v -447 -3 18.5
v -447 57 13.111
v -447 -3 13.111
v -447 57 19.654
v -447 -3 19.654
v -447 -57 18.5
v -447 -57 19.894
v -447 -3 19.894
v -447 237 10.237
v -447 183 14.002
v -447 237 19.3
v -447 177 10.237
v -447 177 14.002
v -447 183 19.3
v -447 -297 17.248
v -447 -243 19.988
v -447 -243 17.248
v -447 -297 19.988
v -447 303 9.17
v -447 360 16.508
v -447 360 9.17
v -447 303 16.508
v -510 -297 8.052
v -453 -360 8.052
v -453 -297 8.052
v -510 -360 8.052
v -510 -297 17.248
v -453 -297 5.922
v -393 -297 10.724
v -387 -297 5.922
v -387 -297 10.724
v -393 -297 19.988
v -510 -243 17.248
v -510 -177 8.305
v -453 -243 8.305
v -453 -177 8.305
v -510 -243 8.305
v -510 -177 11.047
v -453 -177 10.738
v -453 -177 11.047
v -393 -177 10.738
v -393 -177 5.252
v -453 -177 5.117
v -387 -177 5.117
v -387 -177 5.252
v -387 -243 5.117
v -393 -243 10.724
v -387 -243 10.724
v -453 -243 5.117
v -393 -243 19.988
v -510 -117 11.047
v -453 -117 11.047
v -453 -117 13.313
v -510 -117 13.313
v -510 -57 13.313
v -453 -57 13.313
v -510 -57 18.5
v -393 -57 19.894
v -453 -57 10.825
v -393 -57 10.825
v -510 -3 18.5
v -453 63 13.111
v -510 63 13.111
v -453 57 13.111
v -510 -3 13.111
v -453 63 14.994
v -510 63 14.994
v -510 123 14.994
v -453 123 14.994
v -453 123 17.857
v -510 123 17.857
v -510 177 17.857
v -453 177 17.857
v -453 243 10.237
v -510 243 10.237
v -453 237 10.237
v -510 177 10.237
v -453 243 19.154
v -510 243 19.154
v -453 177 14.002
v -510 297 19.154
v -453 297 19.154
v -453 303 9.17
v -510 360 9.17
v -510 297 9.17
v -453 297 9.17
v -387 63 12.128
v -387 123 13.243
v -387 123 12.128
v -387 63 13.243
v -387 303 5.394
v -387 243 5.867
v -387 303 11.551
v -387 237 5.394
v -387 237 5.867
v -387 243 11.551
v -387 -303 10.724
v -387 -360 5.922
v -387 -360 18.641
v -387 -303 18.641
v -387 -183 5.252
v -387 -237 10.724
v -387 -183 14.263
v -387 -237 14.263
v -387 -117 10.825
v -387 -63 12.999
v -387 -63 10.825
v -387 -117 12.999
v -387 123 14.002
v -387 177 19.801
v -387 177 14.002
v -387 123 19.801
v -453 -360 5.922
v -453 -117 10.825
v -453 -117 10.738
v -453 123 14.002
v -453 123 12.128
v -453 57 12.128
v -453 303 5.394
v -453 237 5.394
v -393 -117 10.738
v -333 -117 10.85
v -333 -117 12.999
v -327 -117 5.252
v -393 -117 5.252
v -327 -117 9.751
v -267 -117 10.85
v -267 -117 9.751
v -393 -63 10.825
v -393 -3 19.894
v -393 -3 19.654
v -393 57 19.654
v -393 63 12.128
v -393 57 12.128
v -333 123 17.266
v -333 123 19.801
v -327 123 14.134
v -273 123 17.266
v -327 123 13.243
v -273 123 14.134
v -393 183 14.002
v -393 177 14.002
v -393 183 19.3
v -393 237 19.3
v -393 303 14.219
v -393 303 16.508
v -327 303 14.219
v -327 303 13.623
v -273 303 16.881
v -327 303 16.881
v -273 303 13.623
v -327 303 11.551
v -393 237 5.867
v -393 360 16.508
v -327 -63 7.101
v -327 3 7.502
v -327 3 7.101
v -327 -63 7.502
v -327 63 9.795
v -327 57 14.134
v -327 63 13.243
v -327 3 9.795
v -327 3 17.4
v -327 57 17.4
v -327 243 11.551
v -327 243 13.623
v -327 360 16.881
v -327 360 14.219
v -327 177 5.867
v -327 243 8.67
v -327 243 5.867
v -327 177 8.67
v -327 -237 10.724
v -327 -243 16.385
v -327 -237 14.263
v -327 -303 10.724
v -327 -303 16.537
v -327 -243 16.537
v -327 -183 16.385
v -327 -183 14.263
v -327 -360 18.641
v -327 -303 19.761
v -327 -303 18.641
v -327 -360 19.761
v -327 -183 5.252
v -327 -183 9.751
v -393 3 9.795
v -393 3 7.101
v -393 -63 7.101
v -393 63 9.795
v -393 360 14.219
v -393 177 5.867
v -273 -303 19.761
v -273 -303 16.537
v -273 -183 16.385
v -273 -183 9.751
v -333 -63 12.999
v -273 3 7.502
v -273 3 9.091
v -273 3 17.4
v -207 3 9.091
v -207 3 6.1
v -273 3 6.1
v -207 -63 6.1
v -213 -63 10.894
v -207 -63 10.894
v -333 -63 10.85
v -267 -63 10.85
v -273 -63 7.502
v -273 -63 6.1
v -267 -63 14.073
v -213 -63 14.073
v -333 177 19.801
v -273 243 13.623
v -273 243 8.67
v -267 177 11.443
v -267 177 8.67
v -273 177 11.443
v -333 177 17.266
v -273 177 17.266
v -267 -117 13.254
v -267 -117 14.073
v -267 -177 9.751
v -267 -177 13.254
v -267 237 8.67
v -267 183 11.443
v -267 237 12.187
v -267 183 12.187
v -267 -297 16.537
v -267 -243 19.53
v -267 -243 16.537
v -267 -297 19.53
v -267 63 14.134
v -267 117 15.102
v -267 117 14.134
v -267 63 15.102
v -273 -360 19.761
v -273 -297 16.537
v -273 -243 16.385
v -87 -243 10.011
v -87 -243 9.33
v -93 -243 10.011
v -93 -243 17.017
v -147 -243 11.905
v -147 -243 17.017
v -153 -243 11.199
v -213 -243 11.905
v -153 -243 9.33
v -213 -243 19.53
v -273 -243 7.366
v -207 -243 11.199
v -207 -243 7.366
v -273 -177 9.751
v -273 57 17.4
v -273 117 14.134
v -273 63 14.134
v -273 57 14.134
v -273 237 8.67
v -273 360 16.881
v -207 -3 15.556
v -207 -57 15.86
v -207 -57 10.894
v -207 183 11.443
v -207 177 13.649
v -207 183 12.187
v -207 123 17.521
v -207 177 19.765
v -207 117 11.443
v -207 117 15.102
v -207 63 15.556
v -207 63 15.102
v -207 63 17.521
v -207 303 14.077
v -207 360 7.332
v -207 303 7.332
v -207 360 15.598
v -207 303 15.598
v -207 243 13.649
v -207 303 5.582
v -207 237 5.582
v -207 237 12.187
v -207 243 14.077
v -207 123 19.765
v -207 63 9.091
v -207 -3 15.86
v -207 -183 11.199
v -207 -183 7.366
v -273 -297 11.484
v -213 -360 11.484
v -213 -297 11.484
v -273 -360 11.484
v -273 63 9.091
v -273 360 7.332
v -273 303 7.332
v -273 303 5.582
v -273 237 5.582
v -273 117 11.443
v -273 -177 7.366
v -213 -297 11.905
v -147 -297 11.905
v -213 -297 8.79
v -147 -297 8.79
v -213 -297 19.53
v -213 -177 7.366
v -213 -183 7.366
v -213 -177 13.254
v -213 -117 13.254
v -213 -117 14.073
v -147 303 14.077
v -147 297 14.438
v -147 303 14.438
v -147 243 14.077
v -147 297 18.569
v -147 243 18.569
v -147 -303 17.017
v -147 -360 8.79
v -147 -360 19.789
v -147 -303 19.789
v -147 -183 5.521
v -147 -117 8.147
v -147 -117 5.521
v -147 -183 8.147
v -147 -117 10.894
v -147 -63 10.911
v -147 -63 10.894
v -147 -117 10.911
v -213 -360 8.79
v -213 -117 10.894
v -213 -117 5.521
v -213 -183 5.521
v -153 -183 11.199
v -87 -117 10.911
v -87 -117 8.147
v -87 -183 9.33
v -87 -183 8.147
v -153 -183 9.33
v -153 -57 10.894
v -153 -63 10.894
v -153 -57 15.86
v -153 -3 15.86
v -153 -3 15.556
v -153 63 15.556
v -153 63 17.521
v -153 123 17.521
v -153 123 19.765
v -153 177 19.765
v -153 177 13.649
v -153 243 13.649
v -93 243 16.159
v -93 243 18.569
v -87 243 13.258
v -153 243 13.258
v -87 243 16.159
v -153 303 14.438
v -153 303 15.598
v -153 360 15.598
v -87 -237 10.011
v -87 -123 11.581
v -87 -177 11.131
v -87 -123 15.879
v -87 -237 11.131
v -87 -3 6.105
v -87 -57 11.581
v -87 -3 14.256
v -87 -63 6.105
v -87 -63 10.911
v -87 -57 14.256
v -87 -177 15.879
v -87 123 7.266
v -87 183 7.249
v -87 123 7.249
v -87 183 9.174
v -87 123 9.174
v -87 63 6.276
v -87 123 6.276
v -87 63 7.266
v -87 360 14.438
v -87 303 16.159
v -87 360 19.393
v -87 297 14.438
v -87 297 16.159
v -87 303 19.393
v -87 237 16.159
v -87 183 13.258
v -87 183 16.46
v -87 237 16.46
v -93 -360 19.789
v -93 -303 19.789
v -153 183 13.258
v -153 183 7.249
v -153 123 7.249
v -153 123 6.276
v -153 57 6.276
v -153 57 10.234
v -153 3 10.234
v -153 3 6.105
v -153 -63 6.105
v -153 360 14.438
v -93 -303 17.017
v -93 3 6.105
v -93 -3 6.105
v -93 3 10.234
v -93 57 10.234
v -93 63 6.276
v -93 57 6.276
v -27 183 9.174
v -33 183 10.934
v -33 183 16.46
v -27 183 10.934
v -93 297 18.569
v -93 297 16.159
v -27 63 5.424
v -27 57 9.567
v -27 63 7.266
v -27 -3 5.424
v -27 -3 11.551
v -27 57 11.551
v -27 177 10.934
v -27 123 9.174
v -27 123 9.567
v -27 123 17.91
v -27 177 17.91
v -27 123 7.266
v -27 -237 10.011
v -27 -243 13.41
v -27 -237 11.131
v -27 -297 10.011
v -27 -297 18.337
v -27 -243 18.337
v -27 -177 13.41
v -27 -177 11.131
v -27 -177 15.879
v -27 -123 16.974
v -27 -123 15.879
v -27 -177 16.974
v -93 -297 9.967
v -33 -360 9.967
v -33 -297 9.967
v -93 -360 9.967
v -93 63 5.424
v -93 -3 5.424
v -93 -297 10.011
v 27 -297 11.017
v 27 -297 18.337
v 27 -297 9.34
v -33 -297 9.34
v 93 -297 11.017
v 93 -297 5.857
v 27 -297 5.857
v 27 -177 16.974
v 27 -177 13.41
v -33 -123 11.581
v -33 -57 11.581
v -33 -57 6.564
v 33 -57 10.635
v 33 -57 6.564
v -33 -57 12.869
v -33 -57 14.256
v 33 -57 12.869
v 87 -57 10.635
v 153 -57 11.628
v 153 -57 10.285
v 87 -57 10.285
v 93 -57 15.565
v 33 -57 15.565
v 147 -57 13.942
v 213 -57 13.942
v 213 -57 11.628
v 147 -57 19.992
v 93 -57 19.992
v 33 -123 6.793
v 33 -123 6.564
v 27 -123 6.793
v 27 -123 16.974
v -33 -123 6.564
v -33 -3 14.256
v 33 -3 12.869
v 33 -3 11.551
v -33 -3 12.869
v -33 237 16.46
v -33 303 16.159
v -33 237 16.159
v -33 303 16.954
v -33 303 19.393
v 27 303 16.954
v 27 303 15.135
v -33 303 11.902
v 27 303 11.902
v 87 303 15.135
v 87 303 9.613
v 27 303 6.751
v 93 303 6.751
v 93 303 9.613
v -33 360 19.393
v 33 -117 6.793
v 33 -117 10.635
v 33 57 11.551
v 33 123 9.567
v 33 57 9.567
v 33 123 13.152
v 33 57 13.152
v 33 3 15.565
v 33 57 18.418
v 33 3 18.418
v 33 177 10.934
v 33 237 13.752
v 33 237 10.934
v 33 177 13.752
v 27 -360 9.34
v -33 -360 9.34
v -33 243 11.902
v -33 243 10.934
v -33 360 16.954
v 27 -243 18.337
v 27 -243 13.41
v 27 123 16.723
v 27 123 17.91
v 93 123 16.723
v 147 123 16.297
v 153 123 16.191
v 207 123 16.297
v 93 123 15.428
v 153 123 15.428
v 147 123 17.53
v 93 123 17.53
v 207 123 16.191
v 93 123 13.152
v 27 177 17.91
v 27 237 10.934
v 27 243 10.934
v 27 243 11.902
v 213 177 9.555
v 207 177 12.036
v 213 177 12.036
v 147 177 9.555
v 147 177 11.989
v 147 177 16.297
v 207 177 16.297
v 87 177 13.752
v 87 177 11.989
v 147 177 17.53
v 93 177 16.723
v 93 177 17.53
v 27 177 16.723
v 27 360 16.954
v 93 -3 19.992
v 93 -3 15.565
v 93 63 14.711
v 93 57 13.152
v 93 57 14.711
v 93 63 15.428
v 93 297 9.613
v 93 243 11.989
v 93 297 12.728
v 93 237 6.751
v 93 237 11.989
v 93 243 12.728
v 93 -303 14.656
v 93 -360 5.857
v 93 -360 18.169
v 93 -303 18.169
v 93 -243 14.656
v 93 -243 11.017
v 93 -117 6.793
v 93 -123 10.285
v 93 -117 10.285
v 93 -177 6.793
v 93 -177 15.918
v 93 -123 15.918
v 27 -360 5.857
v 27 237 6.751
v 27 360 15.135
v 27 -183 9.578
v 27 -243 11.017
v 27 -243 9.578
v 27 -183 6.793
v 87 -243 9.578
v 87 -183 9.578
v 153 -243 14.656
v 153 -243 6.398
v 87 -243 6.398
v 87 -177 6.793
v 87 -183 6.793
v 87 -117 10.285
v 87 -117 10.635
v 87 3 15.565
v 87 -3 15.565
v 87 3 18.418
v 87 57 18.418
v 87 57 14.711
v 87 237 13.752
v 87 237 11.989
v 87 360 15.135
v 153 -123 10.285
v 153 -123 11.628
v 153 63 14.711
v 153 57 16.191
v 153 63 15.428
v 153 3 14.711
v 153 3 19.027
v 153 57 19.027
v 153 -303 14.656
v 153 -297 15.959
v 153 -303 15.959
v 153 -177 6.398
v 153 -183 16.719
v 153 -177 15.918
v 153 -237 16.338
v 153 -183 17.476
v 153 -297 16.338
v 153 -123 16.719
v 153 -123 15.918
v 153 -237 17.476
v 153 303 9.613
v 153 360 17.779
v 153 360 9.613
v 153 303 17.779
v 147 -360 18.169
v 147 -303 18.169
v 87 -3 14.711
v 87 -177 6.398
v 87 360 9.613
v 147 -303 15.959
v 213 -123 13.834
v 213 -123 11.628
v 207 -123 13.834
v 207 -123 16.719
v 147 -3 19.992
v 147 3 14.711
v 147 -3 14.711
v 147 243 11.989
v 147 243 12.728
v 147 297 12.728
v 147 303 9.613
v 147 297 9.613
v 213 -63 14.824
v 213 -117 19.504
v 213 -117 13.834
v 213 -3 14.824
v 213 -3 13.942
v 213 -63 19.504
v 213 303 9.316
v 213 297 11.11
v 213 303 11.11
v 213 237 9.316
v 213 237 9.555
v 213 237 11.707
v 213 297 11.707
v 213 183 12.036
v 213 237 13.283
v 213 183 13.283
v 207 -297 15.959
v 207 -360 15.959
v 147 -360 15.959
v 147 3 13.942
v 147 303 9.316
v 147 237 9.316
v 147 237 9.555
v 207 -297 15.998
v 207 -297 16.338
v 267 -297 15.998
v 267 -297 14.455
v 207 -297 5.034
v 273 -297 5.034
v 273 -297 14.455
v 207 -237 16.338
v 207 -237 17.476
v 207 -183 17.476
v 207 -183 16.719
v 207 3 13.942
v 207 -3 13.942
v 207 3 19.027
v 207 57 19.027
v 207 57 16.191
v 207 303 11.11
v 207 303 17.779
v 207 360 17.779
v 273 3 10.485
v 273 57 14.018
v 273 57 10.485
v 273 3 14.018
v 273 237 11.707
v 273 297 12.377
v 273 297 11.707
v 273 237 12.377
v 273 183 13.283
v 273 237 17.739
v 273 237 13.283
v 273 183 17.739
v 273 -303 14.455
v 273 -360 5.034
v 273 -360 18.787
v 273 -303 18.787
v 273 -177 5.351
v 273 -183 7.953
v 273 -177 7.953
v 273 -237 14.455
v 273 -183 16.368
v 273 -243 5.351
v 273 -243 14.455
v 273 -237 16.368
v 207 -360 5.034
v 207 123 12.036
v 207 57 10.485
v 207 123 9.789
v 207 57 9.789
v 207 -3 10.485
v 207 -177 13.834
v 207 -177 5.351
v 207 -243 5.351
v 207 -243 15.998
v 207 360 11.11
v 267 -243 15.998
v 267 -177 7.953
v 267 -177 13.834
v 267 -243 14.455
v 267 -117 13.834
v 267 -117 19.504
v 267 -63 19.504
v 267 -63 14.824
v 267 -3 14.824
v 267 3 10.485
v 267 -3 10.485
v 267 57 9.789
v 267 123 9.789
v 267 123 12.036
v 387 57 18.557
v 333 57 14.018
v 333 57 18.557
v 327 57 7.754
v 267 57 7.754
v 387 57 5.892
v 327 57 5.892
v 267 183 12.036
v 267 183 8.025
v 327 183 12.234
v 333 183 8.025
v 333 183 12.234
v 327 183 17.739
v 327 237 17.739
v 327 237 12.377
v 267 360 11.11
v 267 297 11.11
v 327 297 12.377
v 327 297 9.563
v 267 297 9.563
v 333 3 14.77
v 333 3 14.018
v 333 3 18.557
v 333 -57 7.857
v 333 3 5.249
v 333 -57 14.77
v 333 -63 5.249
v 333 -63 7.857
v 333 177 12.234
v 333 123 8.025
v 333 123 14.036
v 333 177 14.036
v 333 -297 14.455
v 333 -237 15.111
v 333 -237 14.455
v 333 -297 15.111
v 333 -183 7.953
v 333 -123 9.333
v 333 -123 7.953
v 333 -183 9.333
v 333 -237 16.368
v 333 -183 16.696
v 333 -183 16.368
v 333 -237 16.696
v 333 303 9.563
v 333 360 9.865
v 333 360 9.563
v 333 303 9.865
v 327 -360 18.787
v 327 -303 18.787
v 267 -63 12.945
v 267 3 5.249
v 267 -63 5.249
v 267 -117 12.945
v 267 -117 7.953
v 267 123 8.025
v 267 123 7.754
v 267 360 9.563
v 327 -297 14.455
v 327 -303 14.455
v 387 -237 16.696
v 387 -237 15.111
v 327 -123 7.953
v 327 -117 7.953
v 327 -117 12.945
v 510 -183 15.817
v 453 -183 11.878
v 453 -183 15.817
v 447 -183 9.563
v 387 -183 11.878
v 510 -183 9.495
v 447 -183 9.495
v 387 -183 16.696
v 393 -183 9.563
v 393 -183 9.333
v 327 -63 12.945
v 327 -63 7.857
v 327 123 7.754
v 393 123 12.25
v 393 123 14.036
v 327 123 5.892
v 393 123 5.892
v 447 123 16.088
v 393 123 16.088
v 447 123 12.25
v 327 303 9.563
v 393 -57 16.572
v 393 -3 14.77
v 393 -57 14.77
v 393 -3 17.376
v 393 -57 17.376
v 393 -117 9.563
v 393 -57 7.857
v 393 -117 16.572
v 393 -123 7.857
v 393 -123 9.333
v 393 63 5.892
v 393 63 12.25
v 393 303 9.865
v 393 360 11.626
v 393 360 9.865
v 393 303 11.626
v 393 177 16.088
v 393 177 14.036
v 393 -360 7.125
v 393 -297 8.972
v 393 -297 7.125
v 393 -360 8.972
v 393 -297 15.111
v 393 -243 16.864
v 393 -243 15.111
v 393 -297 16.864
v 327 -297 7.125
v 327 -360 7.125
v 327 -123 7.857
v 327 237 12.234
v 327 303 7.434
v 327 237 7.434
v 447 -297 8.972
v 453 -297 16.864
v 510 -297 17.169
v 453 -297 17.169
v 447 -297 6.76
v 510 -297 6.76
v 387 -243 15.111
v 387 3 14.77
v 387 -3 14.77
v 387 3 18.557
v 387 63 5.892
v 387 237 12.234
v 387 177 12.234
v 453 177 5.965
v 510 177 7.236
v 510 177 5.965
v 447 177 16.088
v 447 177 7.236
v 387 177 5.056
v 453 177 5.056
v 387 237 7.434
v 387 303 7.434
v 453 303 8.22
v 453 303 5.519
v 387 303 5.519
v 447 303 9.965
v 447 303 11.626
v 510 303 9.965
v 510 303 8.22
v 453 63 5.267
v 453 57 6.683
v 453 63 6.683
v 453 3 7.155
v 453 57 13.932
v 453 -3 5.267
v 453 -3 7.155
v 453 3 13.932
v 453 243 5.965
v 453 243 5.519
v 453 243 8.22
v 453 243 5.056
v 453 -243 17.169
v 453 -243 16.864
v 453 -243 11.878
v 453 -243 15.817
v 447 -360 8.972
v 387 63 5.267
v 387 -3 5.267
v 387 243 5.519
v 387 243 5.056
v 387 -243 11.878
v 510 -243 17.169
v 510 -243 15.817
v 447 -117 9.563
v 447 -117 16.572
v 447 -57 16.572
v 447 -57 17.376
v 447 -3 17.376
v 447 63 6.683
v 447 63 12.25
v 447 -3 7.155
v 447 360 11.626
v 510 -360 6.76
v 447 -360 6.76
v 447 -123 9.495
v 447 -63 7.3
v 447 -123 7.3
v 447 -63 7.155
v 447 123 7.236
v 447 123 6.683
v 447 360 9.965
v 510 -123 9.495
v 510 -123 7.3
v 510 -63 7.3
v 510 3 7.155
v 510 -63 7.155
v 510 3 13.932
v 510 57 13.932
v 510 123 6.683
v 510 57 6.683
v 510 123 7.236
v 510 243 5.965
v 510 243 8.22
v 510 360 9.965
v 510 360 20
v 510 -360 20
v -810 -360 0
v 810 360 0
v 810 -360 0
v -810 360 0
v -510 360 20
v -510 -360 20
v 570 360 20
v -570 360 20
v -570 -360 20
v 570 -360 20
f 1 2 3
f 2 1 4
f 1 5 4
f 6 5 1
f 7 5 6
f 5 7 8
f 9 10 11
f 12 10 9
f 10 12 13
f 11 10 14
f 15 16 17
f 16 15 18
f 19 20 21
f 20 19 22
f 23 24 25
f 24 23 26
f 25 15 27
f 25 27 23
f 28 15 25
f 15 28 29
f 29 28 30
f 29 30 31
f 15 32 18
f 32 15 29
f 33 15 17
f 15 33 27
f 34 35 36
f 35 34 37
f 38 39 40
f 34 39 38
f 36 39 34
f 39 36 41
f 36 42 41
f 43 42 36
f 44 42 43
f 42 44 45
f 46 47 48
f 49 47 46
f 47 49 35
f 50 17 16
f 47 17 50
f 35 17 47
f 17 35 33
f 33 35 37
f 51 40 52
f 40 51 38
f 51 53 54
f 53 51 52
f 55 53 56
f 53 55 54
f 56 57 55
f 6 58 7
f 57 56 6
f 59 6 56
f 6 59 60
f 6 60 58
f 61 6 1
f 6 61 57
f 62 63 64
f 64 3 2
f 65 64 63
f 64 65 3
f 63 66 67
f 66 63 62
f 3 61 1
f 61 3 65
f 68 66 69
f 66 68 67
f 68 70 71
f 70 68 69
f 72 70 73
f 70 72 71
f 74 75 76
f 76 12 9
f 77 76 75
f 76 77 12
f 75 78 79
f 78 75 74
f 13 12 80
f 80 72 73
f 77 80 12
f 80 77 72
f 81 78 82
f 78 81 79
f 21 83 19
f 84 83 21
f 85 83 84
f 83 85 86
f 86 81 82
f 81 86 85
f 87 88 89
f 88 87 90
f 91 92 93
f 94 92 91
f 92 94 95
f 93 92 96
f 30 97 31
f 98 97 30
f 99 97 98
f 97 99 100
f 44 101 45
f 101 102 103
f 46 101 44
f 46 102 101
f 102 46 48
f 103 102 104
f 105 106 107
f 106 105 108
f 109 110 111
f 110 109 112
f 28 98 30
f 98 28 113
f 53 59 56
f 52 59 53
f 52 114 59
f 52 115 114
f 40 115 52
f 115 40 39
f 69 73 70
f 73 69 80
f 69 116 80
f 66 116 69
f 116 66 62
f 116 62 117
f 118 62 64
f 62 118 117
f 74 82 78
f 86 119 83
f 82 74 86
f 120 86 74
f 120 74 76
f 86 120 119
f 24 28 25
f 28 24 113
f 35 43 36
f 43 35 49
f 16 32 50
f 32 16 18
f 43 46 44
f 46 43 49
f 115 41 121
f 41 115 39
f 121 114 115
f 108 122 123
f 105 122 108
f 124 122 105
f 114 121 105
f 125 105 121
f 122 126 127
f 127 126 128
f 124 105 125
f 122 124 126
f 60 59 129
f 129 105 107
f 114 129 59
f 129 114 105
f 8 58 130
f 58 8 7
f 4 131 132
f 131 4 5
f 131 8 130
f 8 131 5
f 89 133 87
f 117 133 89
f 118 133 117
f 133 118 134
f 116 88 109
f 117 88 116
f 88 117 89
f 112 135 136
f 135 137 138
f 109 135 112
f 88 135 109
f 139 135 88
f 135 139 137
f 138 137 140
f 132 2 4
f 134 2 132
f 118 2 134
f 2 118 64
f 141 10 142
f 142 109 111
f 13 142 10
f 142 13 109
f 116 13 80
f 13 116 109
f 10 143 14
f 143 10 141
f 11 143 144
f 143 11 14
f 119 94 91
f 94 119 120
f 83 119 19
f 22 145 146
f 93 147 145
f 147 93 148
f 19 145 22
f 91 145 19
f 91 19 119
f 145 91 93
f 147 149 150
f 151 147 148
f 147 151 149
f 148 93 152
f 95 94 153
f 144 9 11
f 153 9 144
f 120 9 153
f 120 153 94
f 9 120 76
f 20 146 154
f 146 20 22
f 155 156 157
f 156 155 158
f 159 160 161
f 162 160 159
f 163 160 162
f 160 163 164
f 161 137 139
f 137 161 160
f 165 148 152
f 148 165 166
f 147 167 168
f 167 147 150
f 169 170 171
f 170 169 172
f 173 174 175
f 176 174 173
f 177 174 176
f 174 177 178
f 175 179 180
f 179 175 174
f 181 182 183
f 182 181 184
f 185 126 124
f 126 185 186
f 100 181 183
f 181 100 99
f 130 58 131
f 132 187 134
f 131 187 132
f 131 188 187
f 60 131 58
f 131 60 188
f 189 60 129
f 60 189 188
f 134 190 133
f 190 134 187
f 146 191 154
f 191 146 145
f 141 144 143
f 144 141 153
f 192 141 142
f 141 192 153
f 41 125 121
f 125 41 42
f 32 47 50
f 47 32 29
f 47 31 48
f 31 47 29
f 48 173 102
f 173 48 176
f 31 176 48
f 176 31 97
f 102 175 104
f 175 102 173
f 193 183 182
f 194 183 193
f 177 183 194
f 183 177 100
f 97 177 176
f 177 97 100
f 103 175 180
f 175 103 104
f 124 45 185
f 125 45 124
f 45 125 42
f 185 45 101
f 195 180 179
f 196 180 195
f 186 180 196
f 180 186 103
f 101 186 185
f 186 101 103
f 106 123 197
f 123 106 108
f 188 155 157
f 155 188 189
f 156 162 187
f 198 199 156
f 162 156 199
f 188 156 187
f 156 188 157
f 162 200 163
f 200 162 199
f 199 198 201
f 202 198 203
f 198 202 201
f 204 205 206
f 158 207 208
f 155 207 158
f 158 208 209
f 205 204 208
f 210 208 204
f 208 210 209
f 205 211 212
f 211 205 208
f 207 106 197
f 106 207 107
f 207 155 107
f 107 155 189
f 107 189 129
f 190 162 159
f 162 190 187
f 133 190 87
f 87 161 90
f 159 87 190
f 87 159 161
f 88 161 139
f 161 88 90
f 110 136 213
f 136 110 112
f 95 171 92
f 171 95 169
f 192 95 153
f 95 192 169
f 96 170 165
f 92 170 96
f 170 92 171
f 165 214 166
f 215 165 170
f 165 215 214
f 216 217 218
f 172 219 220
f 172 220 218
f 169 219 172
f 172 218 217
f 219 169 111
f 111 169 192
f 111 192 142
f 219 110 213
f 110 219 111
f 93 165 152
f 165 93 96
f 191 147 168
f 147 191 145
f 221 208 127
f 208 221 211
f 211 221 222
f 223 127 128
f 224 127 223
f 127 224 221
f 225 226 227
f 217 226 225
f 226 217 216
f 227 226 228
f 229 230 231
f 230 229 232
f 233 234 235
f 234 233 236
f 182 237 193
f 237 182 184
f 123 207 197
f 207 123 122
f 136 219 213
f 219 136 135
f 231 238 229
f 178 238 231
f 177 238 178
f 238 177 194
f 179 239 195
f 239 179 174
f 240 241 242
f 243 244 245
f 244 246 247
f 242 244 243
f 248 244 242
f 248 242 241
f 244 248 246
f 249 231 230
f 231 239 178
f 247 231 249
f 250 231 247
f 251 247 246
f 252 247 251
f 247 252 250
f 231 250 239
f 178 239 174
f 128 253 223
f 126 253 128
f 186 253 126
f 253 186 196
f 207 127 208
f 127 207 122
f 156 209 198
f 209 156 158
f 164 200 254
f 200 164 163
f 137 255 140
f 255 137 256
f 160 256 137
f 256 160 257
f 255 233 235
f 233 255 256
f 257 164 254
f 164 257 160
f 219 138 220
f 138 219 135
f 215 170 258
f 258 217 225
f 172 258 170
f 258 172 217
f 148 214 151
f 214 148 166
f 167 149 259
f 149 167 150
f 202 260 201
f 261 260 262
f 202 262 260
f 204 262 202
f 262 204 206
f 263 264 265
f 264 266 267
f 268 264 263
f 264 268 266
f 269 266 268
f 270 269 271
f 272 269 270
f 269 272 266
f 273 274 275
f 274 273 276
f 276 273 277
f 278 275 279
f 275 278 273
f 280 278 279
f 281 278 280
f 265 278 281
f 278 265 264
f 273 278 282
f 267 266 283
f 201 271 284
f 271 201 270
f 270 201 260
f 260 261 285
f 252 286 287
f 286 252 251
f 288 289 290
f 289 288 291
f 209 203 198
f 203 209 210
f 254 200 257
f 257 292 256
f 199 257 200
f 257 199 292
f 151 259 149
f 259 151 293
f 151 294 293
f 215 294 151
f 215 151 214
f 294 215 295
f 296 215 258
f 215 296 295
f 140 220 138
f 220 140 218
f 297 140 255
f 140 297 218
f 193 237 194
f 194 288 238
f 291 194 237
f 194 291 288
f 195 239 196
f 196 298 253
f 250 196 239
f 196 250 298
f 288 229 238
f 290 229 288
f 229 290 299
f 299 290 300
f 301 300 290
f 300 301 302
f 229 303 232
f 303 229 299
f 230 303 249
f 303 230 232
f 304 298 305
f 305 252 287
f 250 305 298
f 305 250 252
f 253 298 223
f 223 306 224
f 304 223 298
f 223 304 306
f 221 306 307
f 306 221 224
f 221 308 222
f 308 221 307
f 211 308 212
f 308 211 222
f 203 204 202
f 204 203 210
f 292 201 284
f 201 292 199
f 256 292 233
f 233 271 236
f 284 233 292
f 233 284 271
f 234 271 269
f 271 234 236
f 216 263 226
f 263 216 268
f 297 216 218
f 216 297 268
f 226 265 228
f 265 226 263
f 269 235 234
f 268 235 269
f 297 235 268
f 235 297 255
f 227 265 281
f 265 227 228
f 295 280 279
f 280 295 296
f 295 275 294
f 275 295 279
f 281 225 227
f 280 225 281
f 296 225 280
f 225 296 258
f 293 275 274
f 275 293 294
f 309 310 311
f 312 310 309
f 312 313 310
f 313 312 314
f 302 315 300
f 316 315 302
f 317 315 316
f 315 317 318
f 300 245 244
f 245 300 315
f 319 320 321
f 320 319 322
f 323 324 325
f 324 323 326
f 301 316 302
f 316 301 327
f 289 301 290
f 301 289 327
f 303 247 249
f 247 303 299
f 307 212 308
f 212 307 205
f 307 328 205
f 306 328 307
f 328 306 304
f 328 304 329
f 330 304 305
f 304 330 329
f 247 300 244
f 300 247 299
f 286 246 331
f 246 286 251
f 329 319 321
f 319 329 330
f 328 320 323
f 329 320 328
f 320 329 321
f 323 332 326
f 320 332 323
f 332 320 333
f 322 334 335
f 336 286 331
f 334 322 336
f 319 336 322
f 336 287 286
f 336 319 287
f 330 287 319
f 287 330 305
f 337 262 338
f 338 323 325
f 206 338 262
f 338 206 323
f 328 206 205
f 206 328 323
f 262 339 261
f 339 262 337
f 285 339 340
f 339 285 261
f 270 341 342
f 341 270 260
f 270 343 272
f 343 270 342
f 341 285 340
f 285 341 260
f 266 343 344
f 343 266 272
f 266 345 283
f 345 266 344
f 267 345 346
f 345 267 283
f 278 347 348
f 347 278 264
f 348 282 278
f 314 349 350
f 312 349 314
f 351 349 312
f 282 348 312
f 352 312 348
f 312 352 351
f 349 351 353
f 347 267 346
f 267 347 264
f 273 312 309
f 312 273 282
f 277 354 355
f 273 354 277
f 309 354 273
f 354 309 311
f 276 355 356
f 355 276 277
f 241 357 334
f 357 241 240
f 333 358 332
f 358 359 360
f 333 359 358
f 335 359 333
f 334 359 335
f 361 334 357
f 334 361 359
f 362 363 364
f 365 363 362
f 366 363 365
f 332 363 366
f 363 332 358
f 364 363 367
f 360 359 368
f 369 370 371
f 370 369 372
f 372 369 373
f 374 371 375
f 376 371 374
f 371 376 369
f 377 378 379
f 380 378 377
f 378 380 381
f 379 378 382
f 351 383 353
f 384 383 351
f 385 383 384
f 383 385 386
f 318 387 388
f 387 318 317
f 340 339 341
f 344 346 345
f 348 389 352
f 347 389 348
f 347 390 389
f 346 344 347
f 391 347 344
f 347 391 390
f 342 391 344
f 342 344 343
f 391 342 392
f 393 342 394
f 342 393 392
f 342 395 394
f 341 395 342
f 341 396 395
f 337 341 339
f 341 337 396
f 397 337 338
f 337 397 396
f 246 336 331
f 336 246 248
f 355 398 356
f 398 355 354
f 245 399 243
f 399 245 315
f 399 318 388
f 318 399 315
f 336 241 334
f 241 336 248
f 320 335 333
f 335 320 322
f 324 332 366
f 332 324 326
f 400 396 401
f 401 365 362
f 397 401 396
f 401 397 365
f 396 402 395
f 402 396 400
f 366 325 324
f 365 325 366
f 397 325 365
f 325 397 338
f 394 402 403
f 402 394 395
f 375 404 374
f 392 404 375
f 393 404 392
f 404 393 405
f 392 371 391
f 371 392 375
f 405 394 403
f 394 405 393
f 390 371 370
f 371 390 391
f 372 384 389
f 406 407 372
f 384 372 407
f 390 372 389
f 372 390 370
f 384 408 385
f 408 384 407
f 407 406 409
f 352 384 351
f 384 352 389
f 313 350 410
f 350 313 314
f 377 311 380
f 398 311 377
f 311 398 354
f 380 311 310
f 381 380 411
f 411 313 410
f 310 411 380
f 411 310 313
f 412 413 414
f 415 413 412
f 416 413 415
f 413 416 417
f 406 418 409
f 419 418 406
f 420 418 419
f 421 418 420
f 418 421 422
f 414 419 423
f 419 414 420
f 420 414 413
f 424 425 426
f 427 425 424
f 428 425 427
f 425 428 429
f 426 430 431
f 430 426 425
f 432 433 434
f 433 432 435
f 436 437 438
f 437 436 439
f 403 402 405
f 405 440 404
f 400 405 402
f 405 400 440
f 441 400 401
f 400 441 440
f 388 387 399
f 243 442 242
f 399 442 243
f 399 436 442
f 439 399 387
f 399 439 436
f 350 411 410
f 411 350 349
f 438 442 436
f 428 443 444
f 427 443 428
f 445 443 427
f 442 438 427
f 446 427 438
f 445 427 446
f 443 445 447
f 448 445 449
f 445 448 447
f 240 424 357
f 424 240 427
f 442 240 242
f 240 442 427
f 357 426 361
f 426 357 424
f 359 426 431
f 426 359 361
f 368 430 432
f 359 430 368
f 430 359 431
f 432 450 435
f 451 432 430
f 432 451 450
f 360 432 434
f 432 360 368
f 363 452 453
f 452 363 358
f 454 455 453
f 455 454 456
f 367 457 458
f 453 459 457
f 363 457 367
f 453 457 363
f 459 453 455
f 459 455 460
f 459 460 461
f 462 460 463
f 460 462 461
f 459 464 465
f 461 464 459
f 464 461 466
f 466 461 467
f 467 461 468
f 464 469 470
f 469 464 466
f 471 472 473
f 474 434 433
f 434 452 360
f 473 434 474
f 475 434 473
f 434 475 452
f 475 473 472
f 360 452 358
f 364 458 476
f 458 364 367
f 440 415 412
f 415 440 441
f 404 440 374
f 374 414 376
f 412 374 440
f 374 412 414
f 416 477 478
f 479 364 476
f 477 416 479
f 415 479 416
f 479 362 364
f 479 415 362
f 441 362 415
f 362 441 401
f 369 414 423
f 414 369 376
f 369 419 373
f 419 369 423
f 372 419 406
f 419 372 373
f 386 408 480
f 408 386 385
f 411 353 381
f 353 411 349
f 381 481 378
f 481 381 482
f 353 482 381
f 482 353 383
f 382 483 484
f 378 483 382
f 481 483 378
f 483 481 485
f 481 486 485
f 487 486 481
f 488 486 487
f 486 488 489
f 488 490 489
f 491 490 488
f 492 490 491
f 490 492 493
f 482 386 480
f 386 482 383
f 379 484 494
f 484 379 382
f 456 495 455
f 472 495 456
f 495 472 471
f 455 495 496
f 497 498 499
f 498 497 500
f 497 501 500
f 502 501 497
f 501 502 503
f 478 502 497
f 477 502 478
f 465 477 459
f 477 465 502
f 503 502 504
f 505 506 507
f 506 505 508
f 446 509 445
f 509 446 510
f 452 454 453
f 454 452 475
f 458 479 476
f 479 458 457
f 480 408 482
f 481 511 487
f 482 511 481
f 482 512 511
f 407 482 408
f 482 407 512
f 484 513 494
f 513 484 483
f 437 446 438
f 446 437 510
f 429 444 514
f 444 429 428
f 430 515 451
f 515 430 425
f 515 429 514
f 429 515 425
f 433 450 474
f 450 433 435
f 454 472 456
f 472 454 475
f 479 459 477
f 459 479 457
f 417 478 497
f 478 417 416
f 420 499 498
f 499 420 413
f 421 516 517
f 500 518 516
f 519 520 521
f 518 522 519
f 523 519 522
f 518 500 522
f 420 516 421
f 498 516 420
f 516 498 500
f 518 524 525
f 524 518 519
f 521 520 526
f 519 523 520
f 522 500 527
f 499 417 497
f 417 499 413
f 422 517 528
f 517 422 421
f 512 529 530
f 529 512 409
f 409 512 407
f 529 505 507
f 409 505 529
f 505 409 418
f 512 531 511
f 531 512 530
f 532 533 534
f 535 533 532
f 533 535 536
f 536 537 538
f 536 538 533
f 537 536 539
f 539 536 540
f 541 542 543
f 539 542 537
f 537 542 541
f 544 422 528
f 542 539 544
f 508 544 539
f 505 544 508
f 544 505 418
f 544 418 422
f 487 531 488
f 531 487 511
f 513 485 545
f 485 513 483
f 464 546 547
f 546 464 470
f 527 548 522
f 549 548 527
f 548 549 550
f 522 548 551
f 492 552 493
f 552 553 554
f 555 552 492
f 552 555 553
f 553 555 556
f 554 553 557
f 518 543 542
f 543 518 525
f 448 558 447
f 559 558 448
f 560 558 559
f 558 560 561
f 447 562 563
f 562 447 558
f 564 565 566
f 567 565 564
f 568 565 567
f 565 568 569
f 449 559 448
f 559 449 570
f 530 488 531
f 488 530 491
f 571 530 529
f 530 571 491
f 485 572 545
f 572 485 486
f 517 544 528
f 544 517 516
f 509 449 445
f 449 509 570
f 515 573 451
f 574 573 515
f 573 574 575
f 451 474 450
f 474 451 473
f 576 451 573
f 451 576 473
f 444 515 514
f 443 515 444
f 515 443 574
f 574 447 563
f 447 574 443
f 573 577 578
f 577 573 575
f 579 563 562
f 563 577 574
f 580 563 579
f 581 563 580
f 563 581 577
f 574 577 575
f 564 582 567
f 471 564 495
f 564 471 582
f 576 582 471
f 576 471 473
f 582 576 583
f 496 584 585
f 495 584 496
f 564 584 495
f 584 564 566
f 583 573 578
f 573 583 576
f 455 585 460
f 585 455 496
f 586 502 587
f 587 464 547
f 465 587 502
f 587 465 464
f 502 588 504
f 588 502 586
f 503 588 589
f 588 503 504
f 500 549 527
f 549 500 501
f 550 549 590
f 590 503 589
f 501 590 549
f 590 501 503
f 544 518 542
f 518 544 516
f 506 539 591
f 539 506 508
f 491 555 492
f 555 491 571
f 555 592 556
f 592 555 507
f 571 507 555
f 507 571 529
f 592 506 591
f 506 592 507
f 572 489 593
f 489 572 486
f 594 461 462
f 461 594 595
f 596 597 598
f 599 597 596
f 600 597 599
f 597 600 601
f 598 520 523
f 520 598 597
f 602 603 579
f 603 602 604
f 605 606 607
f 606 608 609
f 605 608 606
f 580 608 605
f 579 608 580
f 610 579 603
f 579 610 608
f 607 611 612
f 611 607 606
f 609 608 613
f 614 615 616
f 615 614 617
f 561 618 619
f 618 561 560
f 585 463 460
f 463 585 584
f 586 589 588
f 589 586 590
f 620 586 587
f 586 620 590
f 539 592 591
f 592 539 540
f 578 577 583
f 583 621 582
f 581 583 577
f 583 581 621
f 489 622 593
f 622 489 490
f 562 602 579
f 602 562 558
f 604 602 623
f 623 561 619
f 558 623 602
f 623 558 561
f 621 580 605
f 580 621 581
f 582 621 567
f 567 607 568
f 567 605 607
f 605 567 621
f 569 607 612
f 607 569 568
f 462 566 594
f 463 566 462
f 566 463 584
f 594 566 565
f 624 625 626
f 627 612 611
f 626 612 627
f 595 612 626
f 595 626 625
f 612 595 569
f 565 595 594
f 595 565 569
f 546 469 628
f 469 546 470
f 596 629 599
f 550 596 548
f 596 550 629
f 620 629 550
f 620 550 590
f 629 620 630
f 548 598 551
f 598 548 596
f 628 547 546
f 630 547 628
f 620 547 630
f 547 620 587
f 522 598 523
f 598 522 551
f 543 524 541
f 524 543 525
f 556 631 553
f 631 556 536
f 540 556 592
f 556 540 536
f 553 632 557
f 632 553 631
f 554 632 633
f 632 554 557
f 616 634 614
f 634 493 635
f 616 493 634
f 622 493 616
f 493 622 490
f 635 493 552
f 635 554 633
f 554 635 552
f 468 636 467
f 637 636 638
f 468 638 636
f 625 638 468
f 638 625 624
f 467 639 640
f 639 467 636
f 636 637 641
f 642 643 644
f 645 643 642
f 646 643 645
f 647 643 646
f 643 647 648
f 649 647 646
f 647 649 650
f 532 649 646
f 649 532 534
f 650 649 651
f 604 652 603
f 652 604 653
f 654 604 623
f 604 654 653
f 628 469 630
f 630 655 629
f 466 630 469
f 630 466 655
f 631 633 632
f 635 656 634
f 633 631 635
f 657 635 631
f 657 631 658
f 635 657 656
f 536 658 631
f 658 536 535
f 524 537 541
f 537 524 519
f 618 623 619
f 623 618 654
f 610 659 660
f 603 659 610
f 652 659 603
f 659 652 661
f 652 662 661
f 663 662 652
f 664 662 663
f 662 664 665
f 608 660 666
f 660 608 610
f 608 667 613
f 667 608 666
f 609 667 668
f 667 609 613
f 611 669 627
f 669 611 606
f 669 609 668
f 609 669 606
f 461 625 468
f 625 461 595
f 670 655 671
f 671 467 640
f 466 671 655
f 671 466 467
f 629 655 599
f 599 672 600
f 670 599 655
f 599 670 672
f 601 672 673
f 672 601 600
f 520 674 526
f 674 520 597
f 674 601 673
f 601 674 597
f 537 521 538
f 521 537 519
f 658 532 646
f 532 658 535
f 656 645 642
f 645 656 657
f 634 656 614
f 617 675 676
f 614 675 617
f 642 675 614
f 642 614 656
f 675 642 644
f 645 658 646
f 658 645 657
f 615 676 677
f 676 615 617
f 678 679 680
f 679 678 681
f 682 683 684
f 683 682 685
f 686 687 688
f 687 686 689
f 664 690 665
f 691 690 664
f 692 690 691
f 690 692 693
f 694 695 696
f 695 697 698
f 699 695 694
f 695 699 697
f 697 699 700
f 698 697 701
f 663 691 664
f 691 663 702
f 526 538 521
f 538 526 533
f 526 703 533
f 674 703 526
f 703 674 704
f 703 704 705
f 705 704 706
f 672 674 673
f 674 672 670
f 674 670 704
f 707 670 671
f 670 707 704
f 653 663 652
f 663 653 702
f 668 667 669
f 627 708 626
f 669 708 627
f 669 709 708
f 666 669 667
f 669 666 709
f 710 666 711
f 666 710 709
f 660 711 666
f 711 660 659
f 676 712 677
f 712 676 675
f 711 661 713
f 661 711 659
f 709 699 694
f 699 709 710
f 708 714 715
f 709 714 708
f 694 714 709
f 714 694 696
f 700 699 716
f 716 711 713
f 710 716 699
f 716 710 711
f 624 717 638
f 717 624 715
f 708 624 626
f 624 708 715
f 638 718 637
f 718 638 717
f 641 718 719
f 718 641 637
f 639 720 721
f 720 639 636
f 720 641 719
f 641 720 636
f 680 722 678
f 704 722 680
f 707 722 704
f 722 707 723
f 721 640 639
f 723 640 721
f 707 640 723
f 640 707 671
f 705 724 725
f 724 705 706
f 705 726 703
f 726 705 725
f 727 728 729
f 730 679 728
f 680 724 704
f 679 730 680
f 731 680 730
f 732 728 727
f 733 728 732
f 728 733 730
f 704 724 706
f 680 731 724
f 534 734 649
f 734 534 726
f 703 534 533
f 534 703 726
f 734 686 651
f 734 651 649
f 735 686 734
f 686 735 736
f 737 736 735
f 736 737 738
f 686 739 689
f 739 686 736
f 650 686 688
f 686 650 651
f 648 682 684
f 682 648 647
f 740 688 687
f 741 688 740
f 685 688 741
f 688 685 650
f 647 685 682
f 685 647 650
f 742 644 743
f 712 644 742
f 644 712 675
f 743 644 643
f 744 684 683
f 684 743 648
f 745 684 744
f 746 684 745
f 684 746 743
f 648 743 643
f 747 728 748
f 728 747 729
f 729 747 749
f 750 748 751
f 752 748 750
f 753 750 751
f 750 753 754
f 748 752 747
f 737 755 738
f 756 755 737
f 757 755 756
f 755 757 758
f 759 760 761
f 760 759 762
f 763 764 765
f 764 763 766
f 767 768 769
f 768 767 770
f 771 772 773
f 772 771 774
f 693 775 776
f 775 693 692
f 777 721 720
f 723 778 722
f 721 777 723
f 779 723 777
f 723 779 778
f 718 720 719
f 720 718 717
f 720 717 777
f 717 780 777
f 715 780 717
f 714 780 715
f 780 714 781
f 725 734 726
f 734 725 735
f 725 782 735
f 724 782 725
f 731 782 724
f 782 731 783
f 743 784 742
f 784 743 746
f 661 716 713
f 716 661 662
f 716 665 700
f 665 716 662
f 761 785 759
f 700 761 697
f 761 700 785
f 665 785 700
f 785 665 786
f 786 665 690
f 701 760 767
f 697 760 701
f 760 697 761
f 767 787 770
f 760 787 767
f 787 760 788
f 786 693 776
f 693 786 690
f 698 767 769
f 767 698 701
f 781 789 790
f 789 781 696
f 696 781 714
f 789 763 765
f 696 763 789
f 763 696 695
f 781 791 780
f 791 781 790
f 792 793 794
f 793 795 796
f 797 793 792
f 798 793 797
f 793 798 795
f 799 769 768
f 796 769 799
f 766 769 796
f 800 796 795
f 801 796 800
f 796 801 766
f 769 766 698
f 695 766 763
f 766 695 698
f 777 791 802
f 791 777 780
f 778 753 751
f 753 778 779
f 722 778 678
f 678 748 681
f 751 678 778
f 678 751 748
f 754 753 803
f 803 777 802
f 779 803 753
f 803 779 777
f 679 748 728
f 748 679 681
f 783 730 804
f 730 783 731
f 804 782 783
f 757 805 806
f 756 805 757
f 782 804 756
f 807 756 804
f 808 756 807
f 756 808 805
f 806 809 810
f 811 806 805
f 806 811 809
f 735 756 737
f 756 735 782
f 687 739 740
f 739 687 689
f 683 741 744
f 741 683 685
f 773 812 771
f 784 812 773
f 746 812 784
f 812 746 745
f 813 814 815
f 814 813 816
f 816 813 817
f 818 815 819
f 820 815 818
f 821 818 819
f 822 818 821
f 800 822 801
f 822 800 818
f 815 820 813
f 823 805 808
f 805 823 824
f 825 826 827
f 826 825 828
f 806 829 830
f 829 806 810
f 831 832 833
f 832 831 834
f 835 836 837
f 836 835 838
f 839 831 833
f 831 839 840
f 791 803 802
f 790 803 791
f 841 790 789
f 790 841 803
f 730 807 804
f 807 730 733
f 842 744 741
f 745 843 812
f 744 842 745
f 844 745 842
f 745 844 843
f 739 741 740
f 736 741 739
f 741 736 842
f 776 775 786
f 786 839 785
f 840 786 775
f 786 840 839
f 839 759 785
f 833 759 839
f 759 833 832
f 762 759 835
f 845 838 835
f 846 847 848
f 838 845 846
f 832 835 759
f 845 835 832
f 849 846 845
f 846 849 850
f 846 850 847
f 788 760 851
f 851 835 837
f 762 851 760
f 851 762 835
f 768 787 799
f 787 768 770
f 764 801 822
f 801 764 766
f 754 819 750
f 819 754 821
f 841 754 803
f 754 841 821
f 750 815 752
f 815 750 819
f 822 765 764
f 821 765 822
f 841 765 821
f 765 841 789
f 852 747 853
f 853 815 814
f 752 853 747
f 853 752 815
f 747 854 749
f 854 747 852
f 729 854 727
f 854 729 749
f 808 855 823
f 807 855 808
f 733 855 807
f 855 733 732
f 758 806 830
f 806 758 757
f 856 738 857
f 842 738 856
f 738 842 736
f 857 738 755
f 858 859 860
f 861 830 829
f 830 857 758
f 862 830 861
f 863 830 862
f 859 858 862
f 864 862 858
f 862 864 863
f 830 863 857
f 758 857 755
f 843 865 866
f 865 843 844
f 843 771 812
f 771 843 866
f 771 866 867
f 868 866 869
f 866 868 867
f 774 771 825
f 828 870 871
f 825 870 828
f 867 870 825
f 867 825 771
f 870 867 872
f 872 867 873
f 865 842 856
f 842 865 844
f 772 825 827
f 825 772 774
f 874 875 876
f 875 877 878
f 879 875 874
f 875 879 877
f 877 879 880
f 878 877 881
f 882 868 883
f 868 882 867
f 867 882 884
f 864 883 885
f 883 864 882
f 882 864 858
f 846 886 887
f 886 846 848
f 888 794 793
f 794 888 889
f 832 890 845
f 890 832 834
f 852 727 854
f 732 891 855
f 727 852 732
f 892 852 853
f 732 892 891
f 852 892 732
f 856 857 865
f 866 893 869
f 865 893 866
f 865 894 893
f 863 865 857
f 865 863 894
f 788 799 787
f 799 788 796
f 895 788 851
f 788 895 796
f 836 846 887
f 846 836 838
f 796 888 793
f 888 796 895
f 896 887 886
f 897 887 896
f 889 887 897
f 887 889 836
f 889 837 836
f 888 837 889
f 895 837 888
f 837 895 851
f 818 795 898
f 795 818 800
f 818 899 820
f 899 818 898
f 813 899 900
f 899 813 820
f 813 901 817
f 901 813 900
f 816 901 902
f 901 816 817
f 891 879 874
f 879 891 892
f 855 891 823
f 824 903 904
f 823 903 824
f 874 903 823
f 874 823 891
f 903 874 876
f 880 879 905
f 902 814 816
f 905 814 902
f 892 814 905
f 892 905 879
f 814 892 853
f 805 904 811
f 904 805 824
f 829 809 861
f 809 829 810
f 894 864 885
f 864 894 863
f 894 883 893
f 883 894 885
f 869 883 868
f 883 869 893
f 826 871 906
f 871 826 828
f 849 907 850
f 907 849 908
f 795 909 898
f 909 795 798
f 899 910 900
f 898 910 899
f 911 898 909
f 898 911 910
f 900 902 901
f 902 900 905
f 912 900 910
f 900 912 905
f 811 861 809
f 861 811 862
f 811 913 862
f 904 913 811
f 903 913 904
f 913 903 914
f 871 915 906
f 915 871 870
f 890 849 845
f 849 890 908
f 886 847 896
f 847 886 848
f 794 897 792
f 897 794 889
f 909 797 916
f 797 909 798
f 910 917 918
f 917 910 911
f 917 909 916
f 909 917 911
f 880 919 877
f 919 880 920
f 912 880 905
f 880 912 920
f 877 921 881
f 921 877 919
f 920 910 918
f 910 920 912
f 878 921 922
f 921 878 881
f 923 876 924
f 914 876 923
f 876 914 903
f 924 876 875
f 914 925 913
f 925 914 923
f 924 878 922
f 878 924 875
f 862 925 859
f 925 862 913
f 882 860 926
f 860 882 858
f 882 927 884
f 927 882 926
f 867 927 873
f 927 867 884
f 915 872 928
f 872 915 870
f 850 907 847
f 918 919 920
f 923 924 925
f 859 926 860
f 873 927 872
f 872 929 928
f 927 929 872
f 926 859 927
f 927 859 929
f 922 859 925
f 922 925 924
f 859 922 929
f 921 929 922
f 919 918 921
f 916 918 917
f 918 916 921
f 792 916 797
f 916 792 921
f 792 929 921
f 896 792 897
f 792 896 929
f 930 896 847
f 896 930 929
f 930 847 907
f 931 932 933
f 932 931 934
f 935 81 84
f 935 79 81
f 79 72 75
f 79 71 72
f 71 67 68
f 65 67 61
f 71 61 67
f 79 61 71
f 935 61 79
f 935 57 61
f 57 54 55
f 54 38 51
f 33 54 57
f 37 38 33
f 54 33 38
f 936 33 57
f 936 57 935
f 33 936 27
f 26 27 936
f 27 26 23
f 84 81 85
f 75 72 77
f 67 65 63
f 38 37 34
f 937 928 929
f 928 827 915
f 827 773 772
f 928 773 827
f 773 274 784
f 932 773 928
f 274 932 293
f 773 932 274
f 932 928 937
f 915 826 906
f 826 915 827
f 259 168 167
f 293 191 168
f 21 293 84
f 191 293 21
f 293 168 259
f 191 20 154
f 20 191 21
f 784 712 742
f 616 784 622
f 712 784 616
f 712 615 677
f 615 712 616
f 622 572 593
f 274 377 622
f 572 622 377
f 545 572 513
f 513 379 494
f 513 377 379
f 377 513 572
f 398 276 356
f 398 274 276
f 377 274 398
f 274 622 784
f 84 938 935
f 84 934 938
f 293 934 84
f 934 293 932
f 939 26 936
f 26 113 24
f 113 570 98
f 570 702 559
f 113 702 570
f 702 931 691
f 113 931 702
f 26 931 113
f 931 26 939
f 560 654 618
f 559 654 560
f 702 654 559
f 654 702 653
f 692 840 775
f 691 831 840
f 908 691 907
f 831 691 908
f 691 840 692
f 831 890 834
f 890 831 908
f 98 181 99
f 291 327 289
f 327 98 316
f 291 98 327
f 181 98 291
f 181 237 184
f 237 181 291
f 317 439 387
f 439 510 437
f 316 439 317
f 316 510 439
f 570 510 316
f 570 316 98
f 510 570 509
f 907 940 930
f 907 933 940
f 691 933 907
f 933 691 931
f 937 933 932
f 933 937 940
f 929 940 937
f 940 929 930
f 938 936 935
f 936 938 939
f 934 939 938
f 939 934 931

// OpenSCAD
module IrregularFloor(length=1020, width=720, thickness=20, cell_size=60, noise_amplitude=15, mode="bumps", seed=42, z_top=50)
{
    cols = max(1, floor(length/cell_size));
    rows = max(1, floor(width/cell_size));
    noise = rands(0, 1, cols*rows, seed);
    //echo(cols, rows, noise);
    //echo(noise[77]);
    color([0.35, 0.35, 0.35])
    {
        // NOISE LAYER //
        if (mode=="bumps")
        {
            
            translate([0, 0, (thickness)/2]){
                difference()
                {
                    // BASE SLAB (bottom surface at z = 0) //
                    {
                        cube([length, width, thickness], center=true);
                    }
                    for (i=[0:cols-1]) 
                    for (j=[0:rows-1])
                    {
                        x = -length/2 + (i+0.5)*cell_size;
                        y = -width/2 + (j+0.5)*cell_size;
                        //echo(i*rows+j, i, j, noise[i*cols+j]);
                        h = noise[i*rows+j] * noise_amplitude;
                        translate([x, y, thickness/2-h/2+0.05])
                        cube([cell_size*1.1, cell_size*1.1, abs(h)+0.1], center=true);
                    }
                }
            }
            // RAMP
            translate([length/2, 0, 0])
            rotate([0, -90, -90])
            linear_extrude(width, center = true)
            polygon([ [0,0], [thickness,0], [thickness,cell_size], [0,300]]);
            
            // RAMP
            translate([-length/2, 0, 0])
            rotate([0, -90, 90])
            linear_extrude(width, center = true)
            polygon([ [0,0], [thickness,0], [thickness,cell_size], [0,300]]);
        }
        /*
        else if (mode=="craters")
        {
            difference()
            {
                translate([0, 0, z_top - noise_amplitude])
                cube([length, width, noise_amplitude], center=false);

                for (i=[0:cols-1])
                for (j=[0:rows-1])
                {
                    x = -length/2 + (i+0.5)*cell_size;
                    y = -width/2 + (j+0.5)*cell_size;
                    h = noise[i*cols+j];
                    translate([x, y, z_top - abs(h)*noise_amplitude])
                    sphere(d=cell_size*0.9*abs(h)*2 + cell_size*0.3, $fn=16);
                }
            }
        }
            
            
        }//*/
    }
}

IrregularFloor();
